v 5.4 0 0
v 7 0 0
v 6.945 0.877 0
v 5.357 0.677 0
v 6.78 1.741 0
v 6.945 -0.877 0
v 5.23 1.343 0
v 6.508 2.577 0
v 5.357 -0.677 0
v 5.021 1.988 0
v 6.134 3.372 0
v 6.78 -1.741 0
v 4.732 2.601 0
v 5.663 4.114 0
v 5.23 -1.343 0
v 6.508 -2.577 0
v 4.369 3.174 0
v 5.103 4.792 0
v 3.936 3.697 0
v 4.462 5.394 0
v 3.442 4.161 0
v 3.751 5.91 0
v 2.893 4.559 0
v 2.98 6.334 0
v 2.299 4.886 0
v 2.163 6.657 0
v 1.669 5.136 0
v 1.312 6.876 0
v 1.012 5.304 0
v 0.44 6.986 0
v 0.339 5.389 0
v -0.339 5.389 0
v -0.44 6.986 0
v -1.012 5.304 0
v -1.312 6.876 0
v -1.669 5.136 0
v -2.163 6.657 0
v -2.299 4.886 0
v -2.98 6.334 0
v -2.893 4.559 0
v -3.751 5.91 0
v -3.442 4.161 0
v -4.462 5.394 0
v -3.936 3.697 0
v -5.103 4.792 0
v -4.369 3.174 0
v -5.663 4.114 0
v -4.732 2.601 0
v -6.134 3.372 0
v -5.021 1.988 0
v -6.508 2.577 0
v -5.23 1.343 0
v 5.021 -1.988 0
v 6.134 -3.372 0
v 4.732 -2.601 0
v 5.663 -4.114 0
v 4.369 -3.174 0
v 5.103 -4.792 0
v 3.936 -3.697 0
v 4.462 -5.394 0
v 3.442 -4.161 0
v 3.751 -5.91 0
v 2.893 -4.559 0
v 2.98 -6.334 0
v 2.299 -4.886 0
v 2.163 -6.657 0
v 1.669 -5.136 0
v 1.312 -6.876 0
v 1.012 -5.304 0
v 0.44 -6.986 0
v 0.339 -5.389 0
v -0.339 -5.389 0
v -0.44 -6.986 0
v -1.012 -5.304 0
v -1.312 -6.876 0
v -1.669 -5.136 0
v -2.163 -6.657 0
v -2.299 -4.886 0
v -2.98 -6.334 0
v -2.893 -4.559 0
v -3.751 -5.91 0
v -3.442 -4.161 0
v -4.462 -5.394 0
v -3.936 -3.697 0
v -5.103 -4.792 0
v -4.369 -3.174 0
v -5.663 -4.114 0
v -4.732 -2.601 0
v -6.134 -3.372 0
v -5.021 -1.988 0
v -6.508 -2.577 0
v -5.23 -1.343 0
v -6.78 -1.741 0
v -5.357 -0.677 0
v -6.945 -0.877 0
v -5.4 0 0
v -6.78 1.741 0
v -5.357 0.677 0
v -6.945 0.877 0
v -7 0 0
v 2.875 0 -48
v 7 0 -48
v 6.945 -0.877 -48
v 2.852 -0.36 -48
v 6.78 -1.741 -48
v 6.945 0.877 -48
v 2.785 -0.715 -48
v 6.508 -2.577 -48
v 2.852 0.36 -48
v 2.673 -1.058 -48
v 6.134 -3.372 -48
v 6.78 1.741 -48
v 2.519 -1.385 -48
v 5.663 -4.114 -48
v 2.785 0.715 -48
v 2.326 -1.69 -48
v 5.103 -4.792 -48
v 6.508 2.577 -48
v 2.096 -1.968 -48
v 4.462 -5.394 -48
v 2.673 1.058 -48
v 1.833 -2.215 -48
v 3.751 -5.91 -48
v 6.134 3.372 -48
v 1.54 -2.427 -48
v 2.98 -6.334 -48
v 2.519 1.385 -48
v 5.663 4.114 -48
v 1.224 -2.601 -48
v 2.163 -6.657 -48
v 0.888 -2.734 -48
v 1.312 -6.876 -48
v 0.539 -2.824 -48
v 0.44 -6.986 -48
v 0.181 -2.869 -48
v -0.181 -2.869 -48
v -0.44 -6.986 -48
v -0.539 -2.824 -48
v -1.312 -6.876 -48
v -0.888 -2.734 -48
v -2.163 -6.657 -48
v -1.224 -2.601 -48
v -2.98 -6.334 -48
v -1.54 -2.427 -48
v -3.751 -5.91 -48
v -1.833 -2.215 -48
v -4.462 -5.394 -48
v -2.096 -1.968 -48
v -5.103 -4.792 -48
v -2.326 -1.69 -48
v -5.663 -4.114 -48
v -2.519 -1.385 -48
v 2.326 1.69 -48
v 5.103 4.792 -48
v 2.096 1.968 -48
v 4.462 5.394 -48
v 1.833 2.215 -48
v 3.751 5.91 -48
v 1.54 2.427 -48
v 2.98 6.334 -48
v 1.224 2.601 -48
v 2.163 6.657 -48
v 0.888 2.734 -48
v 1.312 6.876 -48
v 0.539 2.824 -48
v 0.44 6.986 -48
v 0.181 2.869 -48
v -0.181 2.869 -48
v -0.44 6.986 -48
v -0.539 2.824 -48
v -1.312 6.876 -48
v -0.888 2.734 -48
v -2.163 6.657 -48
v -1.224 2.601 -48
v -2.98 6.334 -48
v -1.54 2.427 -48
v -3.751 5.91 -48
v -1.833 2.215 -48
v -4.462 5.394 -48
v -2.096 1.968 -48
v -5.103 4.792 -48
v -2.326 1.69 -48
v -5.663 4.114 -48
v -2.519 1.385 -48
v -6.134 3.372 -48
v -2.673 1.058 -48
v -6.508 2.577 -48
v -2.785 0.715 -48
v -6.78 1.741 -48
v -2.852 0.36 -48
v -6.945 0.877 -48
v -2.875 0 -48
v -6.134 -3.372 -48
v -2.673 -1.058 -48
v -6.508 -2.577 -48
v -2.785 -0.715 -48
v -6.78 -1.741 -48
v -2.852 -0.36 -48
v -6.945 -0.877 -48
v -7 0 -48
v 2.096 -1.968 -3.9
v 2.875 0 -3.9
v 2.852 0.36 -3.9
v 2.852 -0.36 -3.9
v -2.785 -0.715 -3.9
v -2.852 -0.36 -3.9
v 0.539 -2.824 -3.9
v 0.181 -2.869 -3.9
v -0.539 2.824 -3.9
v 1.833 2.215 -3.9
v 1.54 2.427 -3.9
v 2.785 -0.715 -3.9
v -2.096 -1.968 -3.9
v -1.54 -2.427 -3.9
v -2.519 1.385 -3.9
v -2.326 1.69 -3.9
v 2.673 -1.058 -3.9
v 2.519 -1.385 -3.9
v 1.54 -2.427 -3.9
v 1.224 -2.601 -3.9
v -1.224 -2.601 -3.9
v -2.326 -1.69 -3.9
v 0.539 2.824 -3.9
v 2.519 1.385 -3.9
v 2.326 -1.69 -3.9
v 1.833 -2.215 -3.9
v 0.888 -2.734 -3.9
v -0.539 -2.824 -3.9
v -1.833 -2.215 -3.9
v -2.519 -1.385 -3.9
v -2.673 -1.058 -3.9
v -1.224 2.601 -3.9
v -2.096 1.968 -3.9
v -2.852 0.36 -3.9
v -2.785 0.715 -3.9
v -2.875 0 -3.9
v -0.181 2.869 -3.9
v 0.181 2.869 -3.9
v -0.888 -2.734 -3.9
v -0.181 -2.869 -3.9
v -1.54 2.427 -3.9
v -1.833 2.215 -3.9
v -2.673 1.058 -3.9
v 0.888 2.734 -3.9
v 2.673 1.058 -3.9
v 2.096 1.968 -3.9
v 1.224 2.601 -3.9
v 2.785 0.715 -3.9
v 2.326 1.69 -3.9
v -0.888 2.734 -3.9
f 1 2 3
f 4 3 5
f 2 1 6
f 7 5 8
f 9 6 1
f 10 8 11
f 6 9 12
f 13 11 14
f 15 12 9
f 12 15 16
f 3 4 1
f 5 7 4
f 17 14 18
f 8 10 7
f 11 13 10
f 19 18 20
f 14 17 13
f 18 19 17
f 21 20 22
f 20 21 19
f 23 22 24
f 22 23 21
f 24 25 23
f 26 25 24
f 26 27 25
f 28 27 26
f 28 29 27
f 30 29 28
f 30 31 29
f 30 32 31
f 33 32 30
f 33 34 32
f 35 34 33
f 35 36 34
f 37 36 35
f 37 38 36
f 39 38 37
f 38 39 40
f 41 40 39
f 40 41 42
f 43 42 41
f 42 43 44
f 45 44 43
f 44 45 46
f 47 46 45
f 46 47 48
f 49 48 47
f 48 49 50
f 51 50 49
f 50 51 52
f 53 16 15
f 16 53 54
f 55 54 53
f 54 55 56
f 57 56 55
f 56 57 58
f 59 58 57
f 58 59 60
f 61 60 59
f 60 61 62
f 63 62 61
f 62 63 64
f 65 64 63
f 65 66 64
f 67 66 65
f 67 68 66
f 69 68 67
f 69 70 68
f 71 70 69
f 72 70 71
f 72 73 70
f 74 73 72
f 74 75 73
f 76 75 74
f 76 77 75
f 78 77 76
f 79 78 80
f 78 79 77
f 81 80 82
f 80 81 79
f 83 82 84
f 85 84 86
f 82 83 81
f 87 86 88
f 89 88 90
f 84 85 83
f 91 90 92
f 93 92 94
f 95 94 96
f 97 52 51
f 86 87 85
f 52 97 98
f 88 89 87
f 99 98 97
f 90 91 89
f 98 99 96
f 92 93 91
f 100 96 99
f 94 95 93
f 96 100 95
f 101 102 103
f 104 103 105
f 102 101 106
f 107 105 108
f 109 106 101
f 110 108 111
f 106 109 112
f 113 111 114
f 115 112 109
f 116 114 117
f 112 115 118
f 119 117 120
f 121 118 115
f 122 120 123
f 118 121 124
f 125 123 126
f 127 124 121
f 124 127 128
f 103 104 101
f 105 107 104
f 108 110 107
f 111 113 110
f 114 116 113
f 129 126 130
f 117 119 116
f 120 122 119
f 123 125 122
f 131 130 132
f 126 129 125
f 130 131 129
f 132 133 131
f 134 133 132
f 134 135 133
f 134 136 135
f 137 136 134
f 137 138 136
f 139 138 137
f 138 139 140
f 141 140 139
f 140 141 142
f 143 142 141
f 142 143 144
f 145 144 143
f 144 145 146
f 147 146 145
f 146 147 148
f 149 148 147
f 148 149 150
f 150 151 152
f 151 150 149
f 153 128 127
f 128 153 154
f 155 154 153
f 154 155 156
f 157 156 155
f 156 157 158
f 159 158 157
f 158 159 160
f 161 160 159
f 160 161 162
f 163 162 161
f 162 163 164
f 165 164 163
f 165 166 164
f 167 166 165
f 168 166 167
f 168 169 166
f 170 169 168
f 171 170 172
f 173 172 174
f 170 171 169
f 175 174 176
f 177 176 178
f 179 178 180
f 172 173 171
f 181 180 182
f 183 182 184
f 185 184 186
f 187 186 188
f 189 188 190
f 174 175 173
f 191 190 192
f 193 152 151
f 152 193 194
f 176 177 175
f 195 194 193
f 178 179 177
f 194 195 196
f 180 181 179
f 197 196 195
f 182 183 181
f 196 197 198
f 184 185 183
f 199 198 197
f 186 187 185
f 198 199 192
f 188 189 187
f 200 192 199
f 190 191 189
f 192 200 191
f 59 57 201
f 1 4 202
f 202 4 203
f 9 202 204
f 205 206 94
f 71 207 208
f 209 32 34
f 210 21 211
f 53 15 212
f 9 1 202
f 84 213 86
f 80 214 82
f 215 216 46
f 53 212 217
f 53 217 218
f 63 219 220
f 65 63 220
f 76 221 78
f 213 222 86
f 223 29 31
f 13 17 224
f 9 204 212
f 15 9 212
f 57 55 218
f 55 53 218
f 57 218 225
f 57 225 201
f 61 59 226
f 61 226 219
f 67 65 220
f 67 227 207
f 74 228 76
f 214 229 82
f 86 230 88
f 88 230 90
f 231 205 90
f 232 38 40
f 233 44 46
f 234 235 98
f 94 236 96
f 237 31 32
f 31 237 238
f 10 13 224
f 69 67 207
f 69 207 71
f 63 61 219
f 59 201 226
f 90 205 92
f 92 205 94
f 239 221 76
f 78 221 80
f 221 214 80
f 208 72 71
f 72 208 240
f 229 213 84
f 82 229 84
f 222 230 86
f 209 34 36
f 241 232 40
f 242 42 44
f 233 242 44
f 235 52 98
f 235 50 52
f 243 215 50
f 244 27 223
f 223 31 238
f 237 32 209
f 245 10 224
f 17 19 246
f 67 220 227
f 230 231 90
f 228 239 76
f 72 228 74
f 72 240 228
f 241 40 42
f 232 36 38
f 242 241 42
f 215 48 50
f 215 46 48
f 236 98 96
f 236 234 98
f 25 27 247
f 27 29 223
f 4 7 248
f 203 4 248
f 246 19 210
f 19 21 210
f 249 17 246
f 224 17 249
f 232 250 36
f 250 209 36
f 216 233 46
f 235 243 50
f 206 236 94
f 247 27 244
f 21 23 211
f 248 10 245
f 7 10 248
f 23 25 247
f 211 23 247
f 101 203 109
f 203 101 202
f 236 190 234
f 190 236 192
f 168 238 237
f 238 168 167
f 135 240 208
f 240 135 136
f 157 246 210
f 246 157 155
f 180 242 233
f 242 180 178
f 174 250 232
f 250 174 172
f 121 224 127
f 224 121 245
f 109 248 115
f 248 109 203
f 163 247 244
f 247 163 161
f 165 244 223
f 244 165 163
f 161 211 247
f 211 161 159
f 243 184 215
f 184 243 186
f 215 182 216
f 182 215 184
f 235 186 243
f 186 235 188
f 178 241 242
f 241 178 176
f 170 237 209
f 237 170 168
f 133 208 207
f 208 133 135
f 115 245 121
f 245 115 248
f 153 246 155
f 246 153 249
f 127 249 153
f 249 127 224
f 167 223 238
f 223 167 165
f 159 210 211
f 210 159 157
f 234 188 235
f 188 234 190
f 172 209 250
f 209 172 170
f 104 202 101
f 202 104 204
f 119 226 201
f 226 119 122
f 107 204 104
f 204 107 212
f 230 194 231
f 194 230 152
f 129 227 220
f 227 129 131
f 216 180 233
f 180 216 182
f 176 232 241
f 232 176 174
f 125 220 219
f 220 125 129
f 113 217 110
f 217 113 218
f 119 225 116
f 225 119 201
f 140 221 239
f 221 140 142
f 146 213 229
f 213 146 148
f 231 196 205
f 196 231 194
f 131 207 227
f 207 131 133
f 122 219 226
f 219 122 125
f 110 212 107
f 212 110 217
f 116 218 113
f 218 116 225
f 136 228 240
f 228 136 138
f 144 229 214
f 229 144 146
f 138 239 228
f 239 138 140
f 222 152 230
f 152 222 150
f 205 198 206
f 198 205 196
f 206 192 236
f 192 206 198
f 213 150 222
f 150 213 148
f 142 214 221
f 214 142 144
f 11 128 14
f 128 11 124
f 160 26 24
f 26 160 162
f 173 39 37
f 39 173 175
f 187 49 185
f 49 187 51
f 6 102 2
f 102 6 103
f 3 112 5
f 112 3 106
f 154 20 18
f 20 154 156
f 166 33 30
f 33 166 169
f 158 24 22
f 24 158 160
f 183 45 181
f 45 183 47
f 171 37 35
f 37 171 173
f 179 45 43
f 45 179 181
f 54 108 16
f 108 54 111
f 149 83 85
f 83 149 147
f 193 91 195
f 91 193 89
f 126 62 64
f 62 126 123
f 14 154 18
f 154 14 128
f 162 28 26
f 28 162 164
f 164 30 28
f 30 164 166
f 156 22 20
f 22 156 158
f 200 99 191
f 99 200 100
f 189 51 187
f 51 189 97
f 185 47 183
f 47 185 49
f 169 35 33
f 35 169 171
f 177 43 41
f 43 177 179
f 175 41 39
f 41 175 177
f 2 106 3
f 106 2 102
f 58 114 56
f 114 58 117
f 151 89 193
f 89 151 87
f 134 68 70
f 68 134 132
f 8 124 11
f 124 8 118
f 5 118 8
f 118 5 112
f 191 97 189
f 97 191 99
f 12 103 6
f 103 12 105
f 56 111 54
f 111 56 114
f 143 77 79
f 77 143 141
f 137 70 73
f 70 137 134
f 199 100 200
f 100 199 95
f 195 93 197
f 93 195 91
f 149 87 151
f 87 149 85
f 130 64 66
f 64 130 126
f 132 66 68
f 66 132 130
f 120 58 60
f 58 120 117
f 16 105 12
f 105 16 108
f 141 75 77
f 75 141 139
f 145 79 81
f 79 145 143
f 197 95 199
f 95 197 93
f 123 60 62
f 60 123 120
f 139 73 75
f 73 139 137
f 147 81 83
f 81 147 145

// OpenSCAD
$fn = 50;


difference() {
	union() {
		translate(v = [0, 0, -48.0000000000]) {
			cylinder(h = 48, r = 7.0000000000);
		}
		cylinder(h = 0, r = 10.0000000000);
	}
	union() {
		translate(v = [0, 0, 0]) {
			rotate(a = [0, 0, 0]) {
				difference() {
					union() {
						#translate(v = [0, 0, -48.0000000000]) {
							cylinder(h = 48, r = 2.6000000000);
						}
						#translate(v = [0, 0, -3.9000000000]) {
							cylinder(h = 3.9000000000, r = 7.0000000000, r1 = 2.8750000000, r2 = 5.4000000000);
						}
						#translate(v = [0, 0, -48.0000000000]) {
							cylinder(h = 48, r = 2.8750000000);
						}
						#translate(v = [0, 0, -48.0000000000]) {
							cylinder(h = 48, r = 2.6000000000);
						}
					}
					union();
				}
			}
		}
	}
}
